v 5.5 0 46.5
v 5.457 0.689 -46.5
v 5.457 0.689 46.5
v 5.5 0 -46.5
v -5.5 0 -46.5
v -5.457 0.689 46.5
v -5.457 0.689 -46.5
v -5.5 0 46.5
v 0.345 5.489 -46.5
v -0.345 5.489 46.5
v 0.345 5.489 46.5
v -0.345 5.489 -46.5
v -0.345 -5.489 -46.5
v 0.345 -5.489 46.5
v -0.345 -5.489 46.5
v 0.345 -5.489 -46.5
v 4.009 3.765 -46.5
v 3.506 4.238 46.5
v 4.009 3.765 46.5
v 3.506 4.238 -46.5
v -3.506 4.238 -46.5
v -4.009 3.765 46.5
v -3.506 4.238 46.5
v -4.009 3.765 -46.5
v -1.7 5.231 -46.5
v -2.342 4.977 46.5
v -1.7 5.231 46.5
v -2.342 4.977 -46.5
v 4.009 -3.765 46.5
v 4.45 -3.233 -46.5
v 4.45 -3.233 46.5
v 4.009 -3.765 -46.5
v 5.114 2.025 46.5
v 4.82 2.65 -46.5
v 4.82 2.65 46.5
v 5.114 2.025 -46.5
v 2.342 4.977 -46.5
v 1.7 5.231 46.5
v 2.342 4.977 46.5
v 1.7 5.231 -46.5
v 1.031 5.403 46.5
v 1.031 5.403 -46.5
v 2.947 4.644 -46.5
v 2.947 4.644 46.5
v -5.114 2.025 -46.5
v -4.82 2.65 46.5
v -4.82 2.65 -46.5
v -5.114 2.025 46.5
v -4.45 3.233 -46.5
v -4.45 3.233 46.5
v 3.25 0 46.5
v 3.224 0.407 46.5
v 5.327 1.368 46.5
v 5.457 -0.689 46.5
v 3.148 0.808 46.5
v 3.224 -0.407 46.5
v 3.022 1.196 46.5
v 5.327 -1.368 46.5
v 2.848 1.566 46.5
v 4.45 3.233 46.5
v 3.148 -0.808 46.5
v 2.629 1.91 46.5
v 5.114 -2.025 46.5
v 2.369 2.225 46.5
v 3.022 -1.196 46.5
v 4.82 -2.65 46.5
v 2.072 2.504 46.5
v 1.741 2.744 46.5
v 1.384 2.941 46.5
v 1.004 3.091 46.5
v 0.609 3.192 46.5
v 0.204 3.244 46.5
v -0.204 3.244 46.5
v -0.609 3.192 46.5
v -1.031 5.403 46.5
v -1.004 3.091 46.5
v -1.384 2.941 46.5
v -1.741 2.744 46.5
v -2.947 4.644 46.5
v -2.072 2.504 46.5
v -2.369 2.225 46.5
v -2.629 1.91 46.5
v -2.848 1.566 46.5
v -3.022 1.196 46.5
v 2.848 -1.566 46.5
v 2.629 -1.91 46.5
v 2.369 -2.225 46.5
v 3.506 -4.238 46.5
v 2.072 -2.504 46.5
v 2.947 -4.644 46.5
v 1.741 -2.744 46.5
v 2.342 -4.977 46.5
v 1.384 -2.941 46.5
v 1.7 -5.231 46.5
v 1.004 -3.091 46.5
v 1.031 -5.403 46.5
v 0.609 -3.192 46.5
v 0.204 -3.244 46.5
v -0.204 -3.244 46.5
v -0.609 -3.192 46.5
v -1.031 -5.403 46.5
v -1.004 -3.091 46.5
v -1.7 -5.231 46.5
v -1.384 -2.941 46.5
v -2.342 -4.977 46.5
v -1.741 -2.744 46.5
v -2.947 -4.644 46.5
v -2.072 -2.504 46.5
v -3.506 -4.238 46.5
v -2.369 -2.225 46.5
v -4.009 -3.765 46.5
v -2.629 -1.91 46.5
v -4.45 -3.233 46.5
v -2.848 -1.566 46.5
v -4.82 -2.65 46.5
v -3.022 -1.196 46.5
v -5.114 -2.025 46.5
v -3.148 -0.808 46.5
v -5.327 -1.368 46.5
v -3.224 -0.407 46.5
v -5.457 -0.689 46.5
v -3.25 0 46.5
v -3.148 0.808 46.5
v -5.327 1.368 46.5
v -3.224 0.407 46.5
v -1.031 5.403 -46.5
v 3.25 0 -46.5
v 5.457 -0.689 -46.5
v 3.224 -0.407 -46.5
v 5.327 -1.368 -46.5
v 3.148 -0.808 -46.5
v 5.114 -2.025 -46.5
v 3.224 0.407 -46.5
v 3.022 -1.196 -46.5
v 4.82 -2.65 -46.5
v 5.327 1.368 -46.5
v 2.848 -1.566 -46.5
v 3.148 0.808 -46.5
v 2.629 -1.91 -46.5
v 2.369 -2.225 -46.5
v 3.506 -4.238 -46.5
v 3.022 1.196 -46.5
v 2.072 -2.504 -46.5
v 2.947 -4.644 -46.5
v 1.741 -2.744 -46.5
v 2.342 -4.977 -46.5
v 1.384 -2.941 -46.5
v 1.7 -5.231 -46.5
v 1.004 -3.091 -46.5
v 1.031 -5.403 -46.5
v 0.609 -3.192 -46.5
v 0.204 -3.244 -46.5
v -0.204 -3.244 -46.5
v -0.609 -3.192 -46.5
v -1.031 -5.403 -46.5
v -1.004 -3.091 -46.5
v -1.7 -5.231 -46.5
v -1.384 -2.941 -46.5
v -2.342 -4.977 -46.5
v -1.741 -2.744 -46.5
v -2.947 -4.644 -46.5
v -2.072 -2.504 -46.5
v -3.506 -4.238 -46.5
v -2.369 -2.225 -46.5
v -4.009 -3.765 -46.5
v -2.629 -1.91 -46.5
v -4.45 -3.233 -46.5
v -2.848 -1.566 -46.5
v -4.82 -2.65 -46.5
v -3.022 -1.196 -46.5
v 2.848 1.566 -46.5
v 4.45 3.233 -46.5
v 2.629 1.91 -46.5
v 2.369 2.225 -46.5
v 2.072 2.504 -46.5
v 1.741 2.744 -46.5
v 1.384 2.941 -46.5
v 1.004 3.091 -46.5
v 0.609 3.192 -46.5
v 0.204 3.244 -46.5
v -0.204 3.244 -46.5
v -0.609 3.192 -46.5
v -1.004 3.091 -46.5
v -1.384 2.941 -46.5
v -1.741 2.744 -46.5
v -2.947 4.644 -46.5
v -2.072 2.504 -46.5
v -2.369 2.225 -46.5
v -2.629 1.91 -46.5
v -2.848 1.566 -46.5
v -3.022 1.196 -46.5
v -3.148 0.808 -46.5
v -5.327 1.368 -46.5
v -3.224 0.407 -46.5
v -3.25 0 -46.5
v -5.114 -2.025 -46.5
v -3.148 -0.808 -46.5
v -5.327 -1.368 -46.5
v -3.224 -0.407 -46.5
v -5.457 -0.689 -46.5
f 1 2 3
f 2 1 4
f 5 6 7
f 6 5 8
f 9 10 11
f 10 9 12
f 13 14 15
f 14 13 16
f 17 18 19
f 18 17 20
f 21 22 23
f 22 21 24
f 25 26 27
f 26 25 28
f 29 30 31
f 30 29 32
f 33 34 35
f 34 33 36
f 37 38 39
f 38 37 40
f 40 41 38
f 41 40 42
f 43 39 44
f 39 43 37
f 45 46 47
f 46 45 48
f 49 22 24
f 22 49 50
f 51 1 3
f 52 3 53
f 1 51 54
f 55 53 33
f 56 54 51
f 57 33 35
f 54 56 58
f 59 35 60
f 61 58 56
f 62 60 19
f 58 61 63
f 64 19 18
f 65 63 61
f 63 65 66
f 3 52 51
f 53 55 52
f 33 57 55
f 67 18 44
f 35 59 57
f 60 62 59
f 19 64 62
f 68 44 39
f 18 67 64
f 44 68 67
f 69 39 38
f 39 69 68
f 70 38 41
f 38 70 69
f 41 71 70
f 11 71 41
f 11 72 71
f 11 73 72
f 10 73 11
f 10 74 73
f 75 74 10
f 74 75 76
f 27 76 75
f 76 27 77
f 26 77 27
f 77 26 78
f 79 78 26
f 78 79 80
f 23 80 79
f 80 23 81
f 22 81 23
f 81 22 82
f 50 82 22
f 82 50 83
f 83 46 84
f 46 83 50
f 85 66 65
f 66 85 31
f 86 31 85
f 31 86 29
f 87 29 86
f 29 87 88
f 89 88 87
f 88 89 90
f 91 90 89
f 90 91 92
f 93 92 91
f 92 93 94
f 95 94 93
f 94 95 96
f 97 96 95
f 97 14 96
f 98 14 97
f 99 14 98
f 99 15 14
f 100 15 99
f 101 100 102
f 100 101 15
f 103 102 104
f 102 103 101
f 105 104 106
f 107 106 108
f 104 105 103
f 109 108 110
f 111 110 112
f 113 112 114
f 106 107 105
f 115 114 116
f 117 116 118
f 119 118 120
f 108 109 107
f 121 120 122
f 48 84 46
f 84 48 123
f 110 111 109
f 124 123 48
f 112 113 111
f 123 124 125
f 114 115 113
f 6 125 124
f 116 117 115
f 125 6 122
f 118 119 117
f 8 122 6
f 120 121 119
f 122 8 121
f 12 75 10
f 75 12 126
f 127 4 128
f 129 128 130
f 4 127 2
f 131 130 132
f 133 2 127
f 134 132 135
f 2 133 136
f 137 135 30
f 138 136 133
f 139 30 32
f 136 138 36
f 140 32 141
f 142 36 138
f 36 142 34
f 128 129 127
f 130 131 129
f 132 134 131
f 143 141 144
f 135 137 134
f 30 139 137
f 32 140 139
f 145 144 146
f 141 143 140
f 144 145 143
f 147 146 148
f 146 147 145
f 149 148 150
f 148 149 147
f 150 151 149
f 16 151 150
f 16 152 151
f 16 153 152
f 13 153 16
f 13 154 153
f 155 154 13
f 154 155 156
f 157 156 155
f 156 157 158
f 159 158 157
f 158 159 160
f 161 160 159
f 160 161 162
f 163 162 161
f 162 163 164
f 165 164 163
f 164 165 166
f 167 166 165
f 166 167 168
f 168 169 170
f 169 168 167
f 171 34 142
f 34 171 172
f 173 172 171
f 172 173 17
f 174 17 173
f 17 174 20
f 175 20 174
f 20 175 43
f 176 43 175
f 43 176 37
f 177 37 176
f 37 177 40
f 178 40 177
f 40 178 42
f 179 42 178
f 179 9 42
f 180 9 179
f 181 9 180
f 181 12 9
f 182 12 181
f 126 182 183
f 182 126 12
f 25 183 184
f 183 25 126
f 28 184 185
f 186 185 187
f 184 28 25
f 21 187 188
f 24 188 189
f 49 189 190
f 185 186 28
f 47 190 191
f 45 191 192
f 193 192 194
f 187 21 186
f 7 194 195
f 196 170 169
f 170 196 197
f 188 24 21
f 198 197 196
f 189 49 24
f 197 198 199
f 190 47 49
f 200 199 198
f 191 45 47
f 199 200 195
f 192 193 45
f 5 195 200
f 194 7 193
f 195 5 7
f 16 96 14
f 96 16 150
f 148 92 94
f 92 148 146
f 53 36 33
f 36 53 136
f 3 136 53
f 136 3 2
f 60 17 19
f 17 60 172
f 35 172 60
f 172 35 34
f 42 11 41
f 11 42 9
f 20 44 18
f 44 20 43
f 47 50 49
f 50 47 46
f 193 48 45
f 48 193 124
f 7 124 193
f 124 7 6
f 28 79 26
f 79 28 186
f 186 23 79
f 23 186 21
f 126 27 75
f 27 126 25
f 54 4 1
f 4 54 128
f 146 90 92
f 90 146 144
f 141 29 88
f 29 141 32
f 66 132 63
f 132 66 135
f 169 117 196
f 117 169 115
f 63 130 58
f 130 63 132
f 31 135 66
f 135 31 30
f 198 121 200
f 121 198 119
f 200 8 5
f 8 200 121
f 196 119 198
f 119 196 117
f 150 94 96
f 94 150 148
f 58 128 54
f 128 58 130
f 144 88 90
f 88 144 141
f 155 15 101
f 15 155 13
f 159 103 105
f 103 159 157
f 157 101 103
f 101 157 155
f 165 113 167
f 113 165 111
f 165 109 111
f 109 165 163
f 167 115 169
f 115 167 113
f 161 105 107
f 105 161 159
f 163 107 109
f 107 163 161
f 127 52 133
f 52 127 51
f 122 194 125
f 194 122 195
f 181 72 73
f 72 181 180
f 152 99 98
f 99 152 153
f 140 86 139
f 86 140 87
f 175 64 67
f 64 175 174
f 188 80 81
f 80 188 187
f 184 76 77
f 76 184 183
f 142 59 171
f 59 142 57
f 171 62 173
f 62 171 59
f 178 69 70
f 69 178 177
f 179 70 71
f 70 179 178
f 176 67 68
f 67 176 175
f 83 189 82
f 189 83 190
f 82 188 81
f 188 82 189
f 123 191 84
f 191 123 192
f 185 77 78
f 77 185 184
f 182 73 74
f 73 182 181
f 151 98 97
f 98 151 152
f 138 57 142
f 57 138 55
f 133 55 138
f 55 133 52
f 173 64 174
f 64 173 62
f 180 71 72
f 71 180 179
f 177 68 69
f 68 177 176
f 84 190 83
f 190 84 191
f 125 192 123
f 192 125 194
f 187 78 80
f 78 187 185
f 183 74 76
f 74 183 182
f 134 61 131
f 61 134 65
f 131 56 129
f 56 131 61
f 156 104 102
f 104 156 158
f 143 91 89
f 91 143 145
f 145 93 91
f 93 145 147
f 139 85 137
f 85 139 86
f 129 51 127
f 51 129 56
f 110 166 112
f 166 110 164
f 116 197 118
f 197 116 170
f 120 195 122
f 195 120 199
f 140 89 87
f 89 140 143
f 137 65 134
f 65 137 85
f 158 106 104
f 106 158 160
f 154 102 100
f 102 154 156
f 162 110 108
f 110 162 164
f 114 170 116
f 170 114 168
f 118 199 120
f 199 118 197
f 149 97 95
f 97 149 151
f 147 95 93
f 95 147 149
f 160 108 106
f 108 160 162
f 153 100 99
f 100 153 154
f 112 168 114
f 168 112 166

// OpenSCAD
$fn = 50;


difference() {
	union() {
		translate(v = [0, 0, -46.5000000000]) {
			cylinder(h = 93, r = 5.5000000000);
		}
	}
	union() {
		translate(v = [0, 0, -100.0000000000]) {
			cylinder(h = 200, r = 3.2500000000);
		}
	}
}
